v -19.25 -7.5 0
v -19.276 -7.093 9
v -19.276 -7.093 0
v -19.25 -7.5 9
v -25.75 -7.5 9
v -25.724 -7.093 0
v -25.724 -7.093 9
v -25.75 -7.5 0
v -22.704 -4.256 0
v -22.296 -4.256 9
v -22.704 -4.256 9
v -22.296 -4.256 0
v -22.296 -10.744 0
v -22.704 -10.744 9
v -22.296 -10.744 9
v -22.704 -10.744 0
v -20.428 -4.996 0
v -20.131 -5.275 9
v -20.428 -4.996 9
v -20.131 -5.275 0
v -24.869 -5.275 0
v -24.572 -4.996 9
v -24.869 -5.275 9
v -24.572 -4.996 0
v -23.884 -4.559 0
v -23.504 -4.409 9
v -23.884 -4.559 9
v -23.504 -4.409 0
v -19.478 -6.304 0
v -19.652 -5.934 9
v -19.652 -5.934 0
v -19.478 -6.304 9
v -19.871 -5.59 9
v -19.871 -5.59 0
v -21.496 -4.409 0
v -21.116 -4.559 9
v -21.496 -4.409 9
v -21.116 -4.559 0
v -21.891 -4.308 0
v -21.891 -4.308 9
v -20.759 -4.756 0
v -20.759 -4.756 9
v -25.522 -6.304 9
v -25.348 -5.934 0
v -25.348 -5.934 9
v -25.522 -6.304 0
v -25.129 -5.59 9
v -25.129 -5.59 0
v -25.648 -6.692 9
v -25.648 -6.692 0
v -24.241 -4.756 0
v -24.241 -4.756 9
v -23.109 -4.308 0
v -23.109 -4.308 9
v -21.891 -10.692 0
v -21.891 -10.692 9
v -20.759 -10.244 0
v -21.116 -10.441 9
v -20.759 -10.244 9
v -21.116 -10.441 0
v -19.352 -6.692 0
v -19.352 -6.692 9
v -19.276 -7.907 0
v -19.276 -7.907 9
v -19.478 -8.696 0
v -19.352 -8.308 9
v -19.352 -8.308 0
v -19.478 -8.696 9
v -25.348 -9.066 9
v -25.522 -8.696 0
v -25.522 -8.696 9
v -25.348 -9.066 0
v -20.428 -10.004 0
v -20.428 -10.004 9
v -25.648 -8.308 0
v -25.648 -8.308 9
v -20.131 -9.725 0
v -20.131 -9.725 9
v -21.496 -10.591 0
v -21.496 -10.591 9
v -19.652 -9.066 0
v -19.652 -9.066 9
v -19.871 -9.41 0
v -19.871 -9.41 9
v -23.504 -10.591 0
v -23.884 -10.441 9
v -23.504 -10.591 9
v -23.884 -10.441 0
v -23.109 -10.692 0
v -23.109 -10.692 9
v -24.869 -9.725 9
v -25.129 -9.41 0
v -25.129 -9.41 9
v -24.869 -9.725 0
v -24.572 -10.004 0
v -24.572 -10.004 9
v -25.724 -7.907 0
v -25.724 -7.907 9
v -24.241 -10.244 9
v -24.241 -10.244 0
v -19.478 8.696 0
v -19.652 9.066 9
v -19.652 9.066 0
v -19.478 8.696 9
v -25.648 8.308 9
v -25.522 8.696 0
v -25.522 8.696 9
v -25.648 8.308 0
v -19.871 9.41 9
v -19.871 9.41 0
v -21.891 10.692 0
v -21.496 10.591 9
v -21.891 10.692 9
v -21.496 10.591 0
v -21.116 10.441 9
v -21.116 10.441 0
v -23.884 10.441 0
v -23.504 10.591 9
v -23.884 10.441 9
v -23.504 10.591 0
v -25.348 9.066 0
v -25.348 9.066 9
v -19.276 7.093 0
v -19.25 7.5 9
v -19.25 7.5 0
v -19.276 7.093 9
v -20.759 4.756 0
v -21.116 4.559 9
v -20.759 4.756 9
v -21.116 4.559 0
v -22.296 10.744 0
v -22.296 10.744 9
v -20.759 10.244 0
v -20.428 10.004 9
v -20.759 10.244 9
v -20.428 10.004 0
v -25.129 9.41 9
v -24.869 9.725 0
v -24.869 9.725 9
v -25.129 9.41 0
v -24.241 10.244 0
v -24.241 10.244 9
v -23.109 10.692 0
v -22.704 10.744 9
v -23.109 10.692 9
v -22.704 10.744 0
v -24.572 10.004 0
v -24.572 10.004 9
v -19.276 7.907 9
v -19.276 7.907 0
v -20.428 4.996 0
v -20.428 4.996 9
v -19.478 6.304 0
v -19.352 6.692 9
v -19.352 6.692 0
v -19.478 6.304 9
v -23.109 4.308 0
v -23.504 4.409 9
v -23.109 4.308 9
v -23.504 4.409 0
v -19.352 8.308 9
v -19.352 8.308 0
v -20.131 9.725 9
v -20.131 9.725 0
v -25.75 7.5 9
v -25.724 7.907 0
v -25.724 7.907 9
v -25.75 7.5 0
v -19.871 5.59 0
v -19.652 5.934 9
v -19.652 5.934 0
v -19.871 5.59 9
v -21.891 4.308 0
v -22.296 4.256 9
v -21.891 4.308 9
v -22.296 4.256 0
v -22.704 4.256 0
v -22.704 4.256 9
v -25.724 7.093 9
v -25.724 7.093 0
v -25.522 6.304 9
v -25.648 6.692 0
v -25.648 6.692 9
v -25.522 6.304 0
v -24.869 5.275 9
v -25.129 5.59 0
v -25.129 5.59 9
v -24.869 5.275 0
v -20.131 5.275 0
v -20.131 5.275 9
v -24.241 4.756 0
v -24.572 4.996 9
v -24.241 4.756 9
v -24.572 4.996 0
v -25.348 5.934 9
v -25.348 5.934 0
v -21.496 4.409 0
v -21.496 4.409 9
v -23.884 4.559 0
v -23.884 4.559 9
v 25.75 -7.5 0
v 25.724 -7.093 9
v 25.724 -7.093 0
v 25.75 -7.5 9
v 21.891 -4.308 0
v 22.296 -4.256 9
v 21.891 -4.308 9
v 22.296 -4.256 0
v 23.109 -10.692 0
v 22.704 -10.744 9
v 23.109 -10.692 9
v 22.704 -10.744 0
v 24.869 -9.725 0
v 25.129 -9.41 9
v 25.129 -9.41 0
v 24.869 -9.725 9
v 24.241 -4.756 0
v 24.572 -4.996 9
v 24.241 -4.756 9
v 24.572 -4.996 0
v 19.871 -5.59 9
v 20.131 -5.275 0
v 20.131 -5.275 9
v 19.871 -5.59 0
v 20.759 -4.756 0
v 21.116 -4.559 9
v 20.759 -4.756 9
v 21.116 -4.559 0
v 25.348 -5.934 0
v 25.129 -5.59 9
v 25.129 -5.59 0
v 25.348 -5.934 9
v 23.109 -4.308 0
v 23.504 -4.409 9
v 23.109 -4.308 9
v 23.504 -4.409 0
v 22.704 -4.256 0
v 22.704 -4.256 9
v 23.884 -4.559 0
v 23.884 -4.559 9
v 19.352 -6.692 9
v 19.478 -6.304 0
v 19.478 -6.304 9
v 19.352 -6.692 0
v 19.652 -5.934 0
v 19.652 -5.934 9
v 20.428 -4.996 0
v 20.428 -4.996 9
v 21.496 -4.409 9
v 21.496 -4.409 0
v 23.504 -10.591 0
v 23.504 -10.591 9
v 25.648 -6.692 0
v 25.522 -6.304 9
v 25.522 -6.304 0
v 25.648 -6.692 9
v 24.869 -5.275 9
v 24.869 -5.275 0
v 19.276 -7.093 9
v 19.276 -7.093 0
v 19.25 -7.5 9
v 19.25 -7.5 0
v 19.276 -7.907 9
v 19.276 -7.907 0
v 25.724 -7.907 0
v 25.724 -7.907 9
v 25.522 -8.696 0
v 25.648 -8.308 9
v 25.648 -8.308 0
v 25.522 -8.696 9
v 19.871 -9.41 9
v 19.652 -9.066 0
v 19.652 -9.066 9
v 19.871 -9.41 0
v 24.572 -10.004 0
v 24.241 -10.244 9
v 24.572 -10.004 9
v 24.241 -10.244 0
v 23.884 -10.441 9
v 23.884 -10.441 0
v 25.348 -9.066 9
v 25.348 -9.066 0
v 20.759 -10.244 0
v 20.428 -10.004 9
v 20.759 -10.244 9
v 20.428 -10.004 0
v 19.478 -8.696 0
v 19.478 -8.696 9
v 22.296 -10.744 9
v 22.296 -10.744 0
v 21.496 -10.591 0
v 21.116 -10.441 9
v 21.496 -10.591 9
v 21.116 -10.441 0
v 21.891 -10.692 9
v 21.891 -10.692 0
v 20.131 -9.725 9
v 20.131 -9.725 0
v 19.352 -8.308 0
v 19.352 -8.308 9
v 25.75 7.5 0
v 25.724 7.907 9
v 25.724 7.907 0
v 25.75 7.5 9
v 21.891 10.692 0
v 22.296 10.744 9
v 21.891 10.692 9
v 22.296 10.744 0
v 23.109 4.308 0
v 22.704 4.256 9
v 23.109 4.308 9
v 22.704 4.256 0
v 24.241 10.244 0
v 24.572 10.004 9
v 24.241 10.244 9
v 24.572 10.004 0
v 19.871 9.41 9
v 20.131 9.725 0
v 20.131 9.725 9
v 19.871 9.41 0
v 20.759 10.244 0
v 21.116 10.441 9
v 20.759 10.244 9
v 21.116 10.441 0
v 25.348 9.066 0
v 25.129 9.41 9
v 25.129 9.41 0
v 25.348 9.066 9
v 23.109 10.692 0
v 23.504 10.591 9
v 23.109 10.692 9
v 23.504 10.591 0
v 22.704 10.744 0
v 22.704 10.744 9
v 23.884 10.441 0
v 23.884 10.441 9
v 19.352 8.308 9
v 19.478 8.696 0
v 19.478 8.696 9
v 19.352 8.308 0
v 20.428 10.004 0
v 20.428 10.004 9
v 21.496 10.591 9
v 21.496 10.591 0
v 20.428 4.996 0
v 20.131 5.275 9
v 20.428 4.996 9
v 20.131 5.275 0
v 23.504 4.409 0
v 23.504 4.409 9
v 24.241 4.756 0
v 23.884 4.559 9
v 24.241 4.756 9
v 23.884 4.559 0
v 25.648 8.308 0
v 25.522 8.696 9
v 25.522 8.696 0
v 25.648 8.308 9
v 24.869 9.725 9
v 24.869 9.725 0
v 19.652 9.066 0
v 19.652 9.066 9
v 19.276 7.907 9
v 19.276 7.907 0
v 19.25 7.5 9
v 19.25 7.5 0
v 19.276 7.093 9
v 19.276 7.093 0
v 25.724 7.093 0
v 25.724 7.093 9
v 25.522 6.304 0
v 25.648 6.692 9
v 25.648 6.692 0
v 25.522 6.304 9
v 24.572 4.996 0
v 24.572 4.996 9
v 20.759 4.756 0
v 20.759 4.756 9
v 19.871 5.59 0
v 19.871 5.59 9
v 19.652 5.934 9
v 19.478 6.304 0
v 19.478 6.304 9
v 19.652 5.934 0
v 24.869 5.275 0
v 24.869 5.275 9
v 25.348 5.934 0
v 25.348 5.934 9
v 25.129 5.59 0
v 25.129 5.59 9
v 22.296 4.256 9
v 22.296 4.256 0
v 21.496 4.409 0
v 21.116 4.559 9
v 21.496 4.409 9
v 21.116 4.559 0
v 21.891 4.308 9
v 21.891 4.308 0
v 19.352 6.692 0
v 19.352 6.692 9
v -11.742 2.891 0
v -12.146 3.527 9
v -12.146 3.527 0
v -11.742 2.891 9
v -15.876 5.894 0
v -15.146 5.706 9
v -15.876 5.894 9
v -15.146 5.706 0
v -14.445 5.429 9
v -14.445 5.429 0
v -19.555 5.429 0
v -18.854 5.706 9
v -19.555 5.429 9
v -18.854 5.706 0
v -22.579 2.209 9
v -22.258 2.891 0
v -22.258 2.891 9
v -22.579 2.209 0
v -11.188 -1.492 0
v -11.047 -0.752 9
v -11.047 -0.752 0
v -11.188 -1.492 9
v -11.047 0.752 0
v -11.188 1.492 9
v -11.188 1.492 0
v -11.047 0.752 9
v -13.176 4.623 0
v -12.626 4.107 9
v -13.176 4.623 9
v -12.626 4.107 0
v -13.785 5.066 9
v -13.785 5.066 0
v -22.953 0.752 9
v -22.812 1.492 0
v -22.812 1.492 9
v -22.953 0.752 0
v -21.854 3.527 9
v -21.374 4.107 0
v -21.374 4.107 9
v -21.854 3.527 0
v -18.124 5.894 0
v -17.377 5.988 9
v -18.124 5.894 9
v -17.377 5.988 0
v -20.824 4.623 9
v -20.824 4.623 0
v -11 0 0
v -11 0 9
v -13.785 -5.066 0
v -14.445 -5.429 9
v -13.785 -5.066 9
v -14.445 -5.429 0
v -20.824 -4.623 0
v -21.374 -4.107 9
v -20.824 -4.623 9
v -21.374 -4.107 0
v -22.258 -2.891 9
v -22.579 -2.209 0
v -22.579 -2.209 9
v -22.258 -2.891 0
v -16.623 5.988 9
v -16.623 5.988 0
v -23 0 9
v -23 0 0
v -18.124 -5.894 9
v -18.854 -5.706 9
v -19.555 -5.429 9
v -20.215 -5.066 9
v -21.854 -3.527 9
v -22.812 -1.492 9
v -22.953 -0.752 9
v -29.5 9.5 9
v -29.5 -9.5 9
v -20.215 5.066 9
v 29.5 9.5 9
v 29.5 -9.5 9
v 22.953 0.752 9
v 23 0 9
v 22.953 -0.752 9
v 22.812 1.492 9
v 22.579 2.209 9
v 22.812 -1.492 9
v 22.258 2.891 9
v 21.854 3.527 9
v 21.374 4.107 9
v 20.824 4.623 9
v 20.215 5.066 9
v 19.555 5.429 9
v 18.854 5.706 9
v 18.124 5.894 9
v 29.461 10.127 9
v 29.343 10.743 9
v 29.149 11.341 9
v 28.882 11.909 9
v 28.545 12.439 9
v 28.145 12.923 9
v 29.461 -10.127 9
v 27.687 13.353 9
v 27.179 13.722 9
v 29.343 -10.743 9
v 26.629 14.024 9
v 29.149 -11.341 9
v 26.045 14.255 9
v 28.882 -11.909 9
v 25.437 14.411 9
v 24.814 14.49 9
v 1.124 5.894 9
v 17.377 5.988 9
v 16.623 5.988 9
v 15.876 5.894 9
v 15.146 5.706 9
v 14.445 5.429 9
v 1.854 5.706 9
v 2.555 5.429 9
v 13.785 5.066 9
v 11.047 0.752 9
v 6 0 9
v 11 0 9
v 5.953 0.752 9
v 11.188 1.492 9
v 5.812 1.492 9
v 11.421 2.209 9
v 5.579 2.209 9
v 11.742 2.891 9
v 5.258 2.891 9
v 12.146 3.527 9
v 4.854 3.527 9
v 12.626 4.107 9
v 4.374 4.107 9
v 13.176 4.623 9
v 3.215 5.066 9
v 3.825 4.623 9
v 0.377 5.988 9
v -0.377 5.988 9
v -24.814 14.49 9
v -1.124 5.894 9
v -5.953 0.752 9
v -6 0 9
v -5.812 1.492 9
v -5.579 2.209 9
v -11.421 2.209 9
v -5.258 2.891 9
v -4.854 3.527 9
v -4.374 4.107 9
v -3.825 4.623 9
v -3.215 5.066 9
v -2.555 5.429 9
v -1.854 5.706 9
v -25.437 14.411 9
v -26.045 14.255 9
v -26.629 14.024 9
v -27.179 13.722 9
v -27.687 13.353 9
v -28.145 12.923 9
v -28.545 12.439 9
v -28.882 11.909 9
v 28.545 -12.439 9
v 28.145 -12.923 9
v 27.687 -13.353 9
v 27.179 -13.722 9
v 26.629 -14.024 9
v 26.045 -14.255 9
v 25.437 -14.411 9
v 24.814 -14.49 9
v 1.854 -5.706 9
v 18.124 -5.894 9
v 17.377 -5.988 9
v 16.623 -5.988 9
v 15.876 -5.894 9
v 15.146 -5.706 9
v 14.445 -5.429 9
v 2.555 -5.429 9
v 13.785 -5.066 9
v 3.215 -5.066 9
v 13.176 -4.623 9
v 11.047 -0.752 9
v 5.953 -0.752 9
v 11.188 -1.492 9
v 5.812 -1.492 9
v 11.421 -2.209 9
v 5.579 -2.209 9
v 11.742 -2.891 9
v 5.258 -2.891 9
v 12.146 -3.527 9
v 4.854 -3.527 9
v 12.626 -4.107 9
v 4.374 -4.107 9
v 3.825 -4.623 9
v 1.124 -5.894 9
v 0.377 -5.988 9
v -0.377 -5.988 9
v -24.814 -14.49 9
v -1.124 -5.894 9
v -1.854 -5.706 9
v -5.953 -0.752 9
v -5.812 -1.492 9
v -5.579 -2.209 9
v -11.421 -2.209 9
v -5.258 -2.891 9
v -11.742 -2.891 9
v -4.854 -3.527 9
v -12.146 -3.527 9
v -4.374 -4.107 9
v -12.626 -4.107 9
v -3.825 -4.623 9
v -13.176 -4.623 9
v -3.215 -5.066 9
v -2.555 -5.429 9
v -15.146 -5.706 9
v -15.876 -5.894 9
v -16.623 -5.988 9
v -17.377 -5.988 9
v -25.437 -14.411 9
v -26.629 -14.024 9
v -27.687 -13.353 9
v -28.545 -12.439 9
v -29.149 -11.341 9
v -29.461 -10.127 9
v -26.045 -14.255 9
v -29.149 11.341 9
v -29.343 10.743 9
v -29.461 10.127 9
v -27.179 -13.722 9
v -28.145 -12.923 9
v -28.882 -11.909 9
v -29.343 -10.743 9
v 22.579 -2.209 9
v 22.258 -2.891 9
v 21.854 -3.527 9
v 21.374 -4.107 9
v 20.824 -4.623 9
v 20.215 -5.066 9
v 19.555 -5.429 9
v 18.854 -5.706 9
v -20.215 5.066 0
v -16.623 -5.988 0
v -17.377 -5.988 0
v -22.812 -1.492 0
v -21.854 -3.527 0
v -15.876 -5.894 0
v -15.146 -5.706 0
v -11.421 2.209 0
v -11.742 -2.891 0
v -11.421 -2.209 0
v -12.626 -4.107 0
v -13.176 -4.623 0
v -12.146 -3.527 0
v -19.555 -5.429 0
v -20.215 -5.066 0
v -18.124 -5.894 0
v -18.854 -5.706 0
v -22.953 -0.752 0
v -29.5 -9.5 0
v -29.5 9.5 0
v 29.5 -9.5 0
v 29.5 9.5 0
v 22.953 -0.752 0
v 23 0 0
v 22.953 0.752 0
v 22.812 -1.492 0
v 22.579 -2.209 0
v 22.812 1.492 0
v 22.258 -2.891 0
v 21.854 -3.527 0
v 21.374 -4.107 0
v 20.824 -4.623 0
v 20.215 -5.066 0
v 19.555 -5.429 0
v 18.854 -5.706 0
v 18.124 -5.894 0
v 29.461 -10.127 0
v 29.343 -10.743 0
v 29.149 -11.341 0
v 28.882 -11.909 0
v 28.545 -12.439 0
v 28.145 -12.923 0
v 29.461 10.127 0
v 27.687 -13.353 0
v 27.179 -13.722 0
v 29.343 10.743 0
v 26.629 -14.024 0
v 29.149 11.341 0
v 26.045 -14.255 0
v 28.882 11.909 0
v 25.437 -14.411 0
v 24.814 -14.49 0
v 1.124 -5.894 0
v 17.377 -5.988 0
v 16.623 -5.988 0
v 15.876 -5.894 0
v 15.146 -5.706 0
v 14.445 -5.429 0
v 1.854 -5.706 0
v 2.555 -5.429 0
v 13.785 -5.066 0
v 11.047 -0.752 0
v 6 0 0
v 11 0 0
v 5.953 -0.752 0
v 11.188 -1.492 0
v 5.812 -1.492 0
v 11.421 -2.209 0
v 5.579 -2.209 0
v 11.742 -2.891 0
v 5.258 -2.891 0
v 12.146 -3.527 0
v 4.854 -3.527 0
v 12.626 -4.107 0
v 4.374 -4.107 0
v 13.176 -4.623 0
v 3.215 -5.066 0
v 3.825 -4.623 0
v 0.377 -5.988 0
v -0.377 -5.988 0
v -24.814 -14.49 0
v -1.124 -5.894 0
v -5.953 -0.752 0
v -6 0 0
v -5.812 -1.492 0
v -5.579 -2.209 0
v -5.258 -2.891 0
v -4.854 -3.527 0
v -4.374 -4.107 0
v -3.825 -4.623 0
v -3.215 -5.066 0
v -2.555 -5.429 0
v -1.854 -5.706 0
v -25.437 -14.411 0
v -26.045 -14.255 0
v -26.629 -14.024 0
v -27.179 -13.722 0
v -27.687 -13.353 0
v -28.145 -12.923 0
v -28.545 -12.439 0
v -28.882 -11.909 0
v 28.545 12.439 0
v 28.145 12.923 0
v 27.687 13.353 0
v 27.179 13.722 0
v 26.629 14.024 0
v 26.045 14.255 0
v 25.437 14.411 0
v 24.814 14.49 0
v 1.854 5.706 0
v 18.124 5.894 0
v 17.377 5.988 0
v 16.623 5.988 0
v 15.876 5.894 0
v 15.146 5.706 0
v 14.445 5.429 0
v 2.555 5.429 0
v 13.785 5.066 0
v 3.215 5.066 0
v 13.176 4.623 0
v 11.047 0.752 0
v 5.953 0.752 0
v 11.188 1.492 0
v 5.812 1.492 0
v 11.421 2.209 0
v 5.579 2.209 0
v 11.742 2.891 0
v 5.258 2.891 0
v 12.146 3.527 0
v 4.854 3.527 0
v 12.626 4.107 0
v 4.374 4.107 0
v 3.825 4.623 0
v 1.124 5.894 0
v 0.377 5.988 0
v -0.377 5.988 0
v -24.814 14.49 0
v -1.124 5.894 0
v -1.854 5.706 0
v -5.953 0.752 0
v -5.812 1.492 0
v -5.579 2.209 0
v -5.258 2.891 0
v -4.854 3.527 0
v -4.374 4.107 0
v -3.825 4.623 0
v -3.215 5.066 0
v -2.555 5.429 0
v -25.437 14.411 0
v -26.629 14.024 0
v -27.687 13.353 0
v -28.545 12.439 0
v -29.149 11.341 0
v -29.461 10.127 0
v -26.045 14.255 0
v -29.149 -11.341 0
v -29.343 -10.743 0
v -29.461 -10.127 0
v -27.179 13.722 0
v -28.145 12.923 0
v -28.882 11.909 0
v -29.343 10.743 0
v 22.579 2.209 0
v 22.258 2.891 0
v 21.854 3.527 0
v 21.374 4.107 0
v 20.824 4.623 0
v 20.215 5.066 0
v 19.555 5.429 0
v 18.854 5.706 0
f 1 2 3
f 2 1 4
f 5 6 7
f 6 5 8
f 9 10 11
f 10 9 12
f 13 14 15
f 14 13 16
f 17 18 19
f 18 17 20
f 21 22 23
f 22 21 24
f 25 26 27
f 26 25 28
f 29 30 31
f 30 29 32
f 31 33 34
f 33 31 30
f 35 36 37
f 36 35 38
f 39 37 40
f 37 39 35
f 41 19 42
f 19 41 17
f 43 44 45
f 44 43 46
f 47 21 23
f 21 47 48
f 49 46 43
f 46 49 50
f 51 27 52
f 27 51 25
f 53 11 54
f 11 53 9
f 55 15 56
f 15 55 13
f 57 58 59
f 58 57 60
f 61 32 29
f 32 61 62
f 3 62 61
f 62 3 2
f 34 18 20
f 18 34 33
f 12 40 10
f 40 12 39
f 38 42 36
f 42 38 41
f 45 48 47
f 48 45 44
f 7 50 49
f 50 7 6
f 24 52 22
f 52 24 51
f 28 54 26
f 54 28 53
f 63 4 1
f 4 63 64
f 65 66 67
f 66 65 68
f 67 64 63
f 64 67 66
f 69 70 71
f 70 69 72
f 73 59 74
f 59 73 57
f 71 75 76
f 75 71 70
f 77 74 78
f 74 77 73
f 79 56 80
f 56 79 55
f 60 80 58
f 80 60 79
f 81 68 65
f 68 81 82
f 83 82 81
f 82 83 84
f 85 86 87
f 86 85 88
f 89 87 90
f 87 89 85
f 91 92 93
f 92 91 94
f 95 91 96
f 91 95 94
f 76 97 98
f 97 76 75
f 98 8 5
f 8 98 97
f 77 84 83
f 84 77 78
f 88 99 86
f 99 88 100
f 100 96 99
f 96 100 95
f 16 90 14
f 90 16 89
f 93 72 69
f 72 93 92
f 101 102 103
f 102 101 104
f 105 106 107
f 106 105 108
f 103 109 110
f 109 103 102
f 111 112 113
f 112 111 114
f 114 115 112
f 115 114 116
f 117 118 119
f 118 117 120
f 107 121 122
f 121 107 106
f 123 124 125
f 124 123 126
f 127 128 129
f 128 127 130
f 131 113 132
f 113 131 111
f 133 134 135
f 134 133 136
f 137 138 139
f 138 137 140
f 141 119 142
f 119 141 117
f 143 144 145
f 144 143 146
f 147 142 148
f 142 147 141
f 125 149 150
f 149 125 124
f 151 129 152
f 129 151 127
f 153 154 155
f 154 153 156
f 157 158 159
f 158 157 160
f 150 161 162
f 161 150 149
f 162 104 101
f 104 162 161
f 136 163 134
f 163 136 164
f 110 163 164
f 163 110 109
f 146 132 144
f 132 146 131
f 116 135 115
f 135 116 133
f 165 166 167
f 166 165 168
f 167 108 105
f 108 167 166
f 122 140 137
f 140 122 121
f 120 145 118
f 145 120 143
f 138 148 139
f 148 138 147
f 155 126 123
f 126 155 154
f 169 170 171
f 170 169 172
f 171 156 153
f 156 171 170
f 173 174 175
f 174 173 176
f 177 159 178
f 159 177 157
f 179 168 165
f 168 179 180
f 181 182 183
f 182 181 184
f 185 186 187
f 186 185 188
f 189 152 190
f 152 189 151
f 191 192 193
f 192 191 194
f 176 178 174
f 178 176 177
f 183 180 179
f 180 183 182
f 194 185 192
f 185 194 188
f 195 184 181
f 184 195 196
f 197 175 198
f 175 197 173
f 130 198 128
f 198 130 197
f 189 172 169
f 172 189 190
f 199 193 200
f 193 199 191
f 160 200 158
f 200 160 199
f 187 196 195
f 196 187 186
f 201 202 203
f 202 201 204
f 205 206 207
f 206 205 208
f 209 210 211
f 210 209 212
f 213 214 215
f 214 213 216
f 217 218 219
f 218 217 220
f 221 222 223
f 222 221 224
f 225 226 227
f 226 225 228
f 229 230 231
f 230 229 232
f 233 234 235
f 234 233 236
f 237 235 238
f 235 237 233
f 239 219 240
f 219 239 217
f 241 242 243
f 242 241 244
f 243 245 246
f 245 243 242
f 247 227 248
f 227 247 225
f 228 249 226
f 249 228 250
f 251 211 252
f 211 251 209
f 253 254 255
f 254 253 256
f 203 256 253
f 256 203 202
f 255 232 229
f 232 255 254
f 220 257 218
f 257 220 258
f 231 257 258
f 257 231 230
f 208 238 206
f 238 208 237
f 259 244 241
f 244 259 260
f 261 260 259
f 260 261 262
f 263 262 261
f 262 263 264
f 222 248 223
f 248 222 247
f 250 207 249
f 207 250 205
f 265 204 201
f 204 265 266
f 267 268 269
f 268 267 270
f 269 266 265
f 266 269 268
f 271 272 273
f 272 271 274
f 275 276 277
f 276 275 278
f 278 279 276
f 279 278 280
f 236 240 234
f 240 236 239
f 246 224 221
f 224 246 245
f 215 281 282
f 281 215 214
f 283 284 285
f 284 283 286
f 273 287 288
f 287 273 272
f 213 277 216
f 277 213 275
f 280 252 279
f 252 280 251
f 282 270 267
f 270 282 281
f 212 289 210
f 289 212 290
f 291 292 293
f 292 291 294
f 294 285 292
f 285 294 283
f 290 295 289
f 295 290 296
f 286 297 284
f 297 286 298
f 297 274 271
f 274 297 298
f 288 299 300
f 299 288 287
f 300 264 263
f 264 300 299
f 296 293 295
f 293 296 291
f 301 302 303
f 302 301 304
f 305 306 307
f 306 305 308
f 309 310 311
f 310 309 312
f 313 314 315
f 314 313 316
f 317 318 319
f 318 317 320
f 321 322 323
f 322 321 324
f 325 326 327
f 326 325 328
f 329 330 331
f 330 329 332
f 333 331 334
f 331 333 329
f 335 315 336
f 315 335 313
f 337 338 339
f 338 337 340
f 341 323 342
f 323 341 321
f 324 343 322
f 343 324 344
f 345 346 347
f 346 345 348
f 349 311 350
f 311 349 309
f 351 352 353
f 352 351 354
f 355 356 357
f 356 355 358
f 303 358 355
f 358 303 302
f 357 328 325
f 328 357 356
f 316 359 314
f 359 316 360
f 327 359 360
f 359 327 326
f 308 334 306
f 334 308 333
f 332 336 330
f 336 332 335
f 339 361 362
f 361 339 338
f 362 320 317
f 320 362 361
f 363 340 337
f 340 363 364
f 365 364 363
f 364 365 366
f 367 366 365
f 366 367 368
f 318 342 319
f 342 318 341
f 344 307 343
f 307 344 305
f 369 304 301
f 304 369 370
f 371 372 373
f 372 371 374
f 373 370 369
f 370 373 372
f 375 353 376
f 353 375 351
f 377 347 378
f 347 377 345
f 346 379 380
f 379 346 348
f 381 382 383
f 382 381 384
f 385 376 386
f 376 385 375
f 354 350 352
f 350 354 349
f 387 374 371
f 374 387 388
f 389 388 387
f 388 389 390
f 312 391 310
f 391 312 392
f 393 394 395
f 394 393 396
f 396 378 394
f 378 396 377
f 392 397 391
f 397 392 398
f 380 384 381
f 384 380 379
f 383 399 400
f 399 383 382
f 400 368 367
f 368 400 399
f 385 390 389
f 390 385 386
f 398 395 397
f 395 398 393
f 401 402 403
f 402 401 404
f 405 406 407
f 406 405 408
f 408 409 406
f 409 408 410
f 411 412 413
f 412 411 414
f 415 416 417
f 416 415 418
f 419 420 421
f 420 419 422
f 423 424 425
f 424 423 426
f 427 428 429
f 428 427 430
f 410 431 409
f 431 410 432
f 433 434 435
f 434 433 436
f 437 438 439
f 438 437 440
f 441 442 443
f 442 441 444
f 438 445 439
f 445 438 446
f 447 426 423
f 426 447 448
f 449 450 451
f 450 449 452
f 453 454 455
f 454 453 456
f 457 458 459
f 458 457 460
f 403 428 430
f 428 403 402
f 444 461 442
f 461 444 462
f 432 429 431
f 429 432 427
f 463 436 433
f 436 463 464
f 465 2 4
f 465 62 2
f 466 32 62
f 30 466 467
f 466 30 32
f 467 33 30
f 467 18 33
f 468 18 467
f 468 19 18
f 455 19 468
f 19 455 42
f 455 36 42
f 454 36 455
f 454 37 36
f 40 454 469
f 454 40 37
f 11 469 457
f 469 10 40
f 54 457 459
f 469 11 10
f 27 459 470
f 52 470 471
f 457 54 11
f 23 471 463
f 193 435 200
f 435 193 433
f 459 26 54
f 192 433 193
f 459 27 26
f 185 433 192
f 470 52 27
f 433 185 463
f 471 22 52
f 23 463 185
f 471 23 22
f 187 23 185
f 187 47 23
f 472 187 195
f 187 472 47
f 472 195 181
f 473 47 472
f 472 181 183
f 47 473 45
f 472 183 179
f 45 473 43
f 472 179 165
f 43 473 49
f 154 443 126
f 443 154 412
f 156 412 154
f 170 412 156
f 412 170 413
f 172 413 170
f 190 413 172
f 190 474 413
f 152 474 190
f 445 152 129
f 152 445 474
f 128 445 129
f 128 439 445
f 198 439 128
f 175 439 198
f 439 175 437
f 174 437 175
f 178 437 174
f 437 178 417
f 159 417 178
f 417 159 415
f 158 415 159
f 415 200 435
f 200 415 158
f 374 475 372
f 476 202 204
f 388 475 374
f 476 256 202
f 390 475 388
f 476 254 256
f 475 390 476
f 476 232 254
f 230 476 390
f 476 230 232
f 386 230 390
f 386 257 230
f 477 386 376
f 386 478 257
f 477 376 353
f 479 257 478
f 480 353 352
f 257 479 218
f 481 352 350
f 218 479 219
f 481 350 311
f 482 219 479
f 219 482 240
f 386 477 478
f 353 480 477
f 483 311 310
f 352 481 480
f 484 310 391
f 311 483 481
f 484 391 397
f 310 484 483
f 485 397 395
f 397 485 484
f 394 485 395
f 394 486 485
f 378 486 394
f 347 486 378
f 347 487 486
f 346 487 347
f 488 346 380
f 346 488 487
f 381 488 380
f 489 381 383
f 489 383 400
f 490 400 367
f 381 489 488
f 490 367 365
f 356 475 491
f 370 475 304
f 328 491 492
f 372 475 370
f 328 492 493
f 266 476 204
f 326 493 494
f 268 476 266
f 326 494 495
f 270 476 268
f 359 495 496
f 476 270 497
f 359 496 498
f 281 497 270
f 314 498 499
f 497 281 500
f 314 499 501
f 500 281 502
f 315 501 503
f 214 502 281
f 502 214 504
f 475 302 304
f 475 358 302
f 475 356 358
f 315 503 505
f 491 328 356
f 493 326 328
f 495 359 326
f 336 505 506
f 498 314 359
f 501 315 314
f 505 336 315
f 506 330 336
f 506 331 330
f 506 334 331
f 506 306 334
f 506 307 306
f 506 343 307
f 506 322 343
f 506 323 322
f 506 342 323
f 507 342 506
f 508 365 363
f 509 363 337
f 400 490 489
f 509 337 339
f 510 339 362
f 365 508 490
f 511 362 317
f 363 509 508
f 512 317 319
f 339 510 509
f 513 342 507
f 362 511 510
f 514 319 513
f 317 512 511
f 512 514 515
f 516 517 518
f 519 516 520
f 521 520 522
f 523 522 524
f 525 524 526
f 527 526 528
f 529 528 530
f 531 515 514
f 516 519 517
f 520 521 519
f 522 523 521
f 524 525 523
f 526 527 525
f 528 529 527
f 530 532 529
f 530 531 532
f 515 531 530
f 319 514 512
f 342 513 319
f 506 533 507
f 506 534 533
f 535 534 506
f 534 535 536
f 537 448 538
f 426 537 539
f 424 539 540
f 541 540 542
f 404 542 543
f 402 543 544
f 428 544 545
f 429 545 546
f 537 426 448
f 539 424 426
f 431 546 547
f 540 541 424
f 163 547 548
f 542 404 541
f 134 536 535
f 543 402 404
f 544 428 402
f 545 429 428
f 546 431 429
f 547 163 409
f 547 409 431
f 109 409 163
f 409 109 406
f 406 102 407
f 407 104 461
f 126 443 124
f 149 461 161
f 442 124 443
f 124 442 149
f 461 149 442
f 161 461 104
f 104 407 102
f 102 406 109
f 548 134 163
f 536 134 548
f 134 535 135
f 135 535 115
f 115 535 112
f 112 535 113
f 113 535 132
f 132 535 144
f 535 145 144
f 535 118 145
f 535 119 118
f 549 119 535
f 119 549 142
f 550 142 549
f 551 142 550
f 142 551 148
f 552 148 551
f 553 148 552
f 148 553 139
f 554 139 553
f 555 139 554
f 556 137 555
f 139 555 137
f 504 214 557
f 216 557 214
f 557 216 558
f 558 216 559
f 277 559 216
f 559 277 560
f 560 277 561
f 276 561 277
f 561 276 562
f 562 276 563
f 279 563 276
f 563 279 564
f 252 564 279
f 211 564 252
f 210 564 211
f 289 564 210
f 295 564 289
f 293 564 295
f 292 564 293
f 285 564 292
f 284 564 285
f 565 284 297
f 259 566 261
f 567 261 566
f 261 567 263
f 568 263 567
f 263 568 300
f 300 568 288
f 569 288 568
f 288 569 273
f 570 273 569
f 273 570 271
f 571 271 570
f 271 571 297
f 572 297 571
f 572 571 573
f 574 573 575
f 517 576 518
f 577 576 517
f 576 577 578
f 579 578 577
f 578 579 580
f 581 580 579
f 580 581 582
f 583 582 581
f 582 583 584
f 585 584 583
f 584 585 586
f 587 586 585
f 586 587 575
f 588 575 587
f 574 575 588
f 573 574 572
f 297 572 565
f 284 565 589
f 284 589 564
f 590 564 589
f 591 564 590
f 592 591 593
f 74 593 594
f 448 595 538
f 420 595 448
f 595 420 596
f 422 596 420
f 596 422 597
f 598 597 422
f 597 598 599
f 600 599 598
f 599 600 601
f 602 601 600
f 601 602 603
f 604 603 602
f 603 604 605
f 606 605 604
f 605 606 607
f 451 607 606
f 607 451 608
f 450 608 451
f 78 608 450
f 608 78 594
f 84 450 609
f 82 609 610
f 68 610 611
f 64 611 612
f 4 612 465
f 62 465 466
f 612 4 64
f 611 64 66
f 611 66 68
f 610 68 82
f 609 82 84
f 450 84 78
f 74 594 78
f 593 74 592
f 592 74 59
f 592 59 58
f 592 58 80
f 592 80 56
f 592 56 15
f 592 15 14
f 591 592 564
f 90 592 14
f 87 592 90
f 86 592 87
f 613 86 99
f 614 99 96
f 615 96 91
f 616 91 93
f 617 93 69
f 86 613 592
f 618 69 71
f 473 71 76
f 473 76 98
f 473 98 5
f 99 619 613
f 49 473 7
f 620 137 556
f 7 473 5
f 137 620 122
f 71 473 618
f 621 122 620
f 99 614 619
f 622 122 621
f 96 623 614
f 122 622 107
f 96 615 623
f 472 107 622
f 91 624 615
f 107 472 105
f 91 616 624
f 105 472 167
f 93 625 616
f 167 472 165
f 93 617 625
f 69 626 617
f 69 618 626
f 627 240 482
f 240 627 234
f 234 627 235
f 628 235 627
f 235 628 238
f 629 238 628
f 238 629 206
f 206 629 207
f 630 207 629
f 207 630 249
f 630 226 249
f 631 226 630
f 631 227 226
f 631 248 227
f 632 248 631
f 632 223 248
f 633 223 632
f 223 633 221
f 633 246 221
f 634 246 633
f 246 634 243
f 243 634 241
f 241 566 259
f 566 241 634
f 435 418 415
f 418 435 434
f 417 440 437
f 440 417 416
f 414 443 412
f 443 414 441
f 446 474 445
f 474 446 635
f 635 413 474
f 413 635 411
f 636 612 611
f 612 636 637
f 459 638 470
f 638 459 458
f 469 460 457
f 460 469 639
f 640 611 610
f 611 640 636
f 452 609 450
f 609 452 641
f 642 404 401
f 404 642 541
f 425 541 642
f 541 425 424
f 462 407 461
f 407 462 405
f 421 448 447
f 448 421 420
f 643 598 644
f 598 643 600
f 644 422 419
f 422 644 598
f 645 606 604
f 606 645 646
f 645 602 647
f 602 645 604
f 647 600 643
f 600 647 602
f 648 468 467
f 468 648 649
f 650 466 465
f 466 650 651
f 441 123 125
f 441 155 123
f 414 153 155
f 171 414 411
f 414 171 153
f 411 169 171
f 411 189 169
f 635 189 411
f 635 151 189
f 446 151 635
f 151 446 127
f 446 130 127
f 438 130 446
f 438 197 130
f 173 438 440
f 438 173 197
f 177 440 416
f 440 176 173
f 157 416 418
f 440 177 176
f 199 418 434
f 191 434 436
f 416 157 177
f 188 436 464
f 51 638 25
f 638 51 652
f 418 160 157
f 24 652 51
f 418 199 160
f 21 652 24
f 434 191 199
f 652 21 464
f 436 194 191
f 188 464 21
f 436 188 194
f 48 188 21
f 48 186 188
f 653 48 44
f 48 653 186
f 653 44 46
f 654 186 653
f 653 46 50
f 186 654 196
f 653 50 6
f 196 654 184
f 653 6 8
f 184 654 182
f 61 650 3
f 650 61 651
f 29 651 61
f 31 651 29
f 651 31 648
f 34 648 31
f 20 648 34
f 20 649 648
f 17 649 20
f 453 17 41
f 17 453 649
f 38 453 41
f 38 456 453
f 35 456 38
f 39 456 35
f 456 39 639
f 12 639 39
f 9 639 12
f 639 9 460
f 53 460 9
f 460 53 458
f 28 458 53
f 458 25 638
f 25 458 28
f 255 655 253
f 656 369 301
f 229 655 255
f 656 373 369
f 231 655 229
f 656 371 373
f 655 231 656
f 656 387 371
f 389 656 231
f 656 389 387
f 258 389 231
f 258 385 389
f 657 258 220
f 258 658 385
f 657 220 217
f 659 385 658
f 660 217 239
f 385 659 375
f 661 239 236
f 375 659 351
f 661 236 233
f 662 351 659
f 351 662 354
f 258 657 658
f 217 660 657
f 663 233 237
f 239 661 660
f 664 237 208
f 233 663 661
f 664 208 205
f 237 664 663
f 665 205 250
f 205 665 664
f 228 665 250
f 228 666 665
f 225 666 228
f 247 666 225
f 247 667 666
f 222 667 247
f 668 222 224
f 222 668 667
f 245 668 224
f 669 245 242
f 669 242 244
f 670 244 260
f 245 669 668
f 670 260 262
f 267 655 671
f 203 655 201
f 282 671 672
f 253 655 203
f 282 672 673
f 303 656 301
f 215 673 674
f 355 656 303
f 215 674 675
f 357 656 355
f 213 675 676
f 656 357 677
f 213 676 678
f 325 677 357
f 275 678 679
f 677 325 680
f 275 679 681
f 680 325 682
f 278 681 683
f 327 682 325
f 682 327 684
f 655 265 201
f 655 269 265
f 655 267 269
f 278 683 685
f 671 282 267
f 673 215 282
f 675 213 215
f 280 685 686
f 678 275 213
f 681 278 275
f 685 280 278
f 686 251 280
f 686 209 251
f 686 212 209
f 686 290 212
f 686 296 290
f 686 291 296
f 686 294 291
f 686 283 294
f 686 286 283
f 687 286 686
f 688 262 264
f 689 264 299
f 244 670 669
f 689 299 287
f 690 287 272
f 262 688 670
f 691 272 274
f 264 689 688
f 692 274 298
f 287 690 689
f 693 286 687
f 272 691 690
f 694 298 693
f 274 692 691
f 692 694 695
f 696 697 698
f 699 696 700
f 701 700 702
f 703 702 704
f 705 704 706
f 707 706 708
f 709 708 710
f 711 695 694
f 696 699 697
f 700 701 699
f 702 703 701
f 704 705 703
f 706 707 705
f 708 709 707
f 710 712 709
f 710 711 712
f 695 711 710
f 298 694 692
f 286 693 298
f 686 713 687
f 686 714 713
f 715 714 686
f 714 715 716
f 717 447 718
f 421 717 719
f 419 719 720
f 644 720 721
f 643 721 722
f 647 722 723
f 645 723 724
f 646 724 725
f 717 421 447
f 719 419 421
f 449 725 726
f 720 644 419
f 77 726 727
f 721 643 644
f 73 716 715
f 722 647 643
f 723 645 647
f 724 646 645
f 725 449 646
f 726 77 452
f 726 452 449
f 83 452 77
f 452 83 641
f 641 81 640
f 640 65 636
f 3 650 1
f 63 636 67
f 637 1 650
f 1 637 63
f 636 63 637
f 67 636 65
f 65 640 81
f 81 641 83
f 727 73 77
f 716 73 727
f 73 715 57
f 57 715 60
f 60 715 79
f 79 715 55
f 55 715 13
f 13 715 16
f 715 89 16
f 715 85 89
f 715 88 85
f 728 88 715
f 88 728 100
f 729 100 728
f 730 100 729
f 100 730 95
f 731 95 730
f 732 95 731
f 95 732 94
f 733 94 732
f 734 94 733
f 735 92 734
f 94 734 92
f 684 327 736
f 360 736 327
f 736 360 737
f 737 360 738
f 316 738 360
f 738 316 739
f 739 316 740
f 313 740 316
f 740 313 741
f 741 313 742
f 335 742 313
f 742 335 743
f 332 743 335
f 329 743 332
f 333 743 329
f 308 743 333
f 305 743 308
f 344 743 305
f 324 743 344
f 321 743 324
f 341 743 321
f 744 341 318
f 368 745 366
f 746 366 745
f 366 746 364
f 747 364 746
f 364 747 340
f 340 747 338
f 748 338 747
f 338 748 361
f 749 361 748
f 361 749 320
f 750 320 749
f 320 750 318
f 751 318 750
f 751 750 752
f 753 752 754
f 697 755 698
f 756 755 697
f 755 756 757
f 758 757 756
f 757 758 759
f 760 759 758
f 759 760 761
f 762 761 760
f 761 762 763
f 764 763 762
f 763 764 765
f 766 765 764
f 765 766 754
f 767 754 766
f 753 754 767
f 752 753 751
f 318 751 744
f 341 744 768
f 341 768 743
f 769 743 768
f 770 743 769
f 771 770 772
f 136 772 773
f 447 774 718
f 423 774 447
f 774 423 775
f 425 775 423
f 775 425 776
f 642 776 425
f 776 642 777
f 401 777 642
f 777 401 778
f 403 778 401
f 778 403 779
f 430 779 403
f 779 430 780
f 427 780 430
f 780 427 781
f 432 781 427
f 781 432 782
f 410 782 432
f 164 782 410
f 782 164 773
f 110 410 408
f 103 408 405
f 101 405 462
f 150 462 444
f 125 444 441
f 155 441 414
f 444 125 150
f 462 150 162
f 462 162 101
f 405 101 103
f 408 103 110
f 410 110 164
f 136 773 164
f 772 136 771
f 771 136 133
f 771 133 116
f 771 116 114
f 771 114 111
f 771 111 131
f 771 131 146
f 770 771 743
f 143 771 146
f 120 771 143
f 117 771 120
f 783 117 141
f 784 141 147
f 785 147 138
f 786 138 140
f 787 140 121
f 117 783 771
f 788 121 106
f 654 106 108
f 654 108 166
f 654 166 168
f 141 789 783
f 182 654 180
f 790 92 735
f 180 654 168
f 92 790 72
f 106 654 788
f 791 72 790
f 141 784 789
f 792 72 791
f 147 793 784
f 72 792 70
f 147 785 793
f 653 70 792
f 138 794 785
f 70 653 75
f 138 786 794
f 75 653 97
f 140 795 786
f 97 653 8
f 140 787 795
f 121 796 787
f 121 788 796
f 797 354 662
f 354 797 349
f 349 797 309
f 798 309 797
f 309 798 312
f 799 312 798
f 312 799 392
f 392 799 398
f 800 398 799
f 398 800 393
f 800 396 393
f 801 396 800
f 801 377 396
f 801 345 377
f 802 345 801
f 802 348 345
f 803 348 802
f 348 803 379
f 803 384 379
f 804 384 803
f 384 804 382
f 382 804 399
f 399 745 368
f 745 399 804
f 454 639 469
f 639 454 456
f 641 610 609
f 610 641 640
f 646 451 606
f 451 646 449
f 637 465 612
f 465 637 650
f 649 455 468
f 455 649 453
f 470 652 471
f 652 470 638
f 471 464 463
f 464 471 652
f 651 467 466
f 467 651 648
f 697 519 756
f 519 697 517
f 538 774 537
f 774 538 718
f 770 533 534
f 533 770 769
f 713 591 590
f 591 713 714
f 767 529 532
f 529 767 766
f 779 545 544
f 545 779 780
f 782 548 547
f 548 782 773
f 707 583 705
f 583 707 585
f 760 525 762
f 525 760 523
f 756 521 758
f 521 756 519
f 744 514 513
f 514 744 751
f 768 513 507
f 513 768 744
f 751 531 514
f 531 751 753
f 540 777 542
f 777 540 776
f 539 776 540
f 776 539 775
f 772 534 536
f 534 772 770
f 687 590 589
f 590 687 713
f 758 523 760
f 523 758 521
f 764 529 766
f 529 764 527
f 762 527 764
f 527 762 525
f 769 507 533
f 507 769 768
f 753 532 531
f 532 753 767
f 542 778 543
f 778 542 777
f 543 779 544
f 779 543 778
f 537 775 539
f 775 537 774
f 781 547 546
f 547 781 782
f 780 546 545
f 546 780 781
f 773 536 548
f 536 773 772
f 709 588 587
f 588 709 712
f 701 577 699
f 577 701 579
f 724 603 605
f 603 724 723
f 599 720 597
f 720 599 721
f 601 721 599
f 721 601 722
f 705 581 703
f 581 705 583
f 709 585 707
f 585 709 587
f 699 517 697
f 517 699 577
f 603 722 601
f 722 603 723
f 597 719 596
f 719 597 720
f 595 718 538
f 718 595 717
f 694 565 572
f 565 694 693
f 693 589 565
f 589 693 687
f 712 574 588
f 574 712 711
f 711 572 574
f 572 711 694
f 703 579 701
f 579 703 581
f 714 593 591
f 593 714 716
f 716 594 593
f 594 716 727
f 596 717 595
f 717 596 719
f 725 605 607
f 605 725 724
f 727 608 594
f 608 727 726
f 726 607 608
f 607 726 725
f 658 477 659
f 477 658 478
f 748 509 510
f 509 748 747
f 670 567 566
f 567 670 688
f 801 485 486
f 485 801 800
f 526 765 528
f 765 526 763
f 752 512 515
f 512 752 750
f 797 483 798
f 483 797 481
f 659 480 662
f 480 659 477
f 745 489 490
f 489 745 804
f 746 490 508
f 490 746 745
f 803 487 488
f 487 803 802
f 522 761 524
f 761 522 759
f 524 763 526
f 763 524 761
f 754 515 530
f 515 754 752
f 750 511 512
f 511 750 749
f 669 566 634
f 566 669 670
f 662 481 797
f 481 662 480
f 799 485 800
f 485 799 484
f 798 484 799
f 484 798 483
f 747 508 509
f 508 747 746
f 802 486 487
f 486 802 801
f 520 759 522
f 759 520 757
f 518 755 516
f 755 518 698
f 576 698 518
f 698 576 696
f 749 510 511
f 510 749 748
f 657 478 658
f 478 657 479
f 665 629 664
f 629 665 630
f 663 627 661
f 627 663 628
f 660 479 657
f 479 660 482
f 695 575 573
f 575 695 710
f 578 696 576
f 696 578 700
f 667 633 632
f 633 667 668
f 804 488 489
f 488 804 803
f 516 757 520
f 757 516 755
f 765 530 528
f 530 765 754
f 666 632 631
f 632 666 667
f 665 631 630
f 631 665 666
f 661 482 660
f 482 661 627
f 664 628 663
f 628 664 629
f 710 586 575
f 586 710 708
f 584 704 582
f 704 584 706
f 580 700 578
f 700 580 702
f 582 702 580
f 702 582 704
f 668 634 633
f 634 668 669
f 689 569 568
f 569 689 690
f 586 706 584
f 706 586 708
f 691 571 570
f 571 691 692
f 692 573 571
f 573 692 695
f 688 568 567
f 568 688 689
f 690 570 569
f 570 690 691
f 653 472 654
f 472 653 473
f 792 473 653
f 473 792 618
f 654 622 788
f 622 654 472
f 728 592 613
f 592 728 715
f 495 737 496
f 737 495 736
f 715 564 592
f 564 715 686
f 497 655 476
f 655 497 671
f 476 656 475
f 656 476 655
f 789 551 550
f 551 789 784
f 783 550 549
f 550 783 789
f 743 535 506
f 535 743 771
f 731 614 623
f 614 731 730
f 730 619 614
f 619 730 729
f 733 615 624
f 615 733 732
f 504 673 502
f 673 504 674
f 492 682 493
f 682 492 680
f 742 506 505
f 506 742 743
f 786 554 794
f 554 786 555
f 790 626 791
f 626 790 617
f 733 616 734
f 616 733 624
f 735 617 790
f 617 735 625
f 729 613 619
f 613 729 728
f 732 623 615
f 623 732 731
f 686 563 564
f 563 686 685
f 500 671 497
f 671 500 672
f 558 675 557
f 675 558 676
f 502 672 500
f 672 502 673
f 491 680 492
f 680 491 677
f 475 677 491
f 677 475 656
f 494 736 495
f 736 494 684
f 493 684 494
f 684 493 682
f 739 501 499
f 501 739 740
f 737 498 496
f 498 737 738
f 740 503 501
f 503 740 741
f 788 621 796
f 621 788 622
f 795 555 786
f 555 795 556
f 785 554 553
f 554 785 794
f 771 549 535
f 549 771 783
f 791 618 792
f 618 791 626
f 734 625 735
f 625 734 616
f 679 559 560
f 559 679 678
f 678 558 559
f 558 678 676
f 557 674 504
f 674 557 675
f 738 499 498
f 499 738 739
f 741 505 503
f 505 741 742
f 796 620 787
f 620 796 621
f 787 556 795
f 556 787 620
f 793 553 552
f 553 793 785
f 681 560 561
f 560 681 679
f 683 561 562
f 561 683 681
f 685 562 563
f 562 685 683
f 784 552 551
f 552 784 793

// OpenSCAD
$fn = 50;


difference() {
	union() {
		hull() {
			translate(v = [-24.5000000000, 9.5000000000, 0]) {
				cylinder(h = 9, r = 5);
			}
			translate(v = [24.5000000000, 9.5000000000, 0]) {
				cylinder(h = 9, r = 5);
			}
			translate(v = [-24.5000000000, -9.5000000000, 0]) {
				cylinder(h = 9, r = 5);
			}
			translate(v = [24.5000000000, -9.5000000000, 0]) {
				cylinder(h = 9, r = 5);
			}
		}
	}
	union() {
		#translate(v = [-22.5000000000, -7.5000000000, -100.0000000000]) {
			cylinder(h = 200, r = 3.2500000000);
		}
		#translate(v = [-22.5000000000, 7.5000000000, -100.0000000000]) {
			cylinder(h = 200, r = 3.2500000000);
		}
		#translate(v = [22.5000000000, -7.5000000000, -100.0000000000]) {
			cylinder(h = 200, r = 3.2500000000);
		}
		#translate(v = [22.5000000000, 7.5000000000, -100.0000000000]) {
			cylinder(h = 200, r = 3.2500000000);
		}
		#translate(v = [-17.0000000000, 0, 0]) {
			cylinder(h = 9, r = 6.0000000000);
		}
		#cylinder(h = 9, r = 6.0000000000);
		#translate(v = [17.0000000000, 0, 0]) {
			cylinder(h = 9, r = 6.0000000000);
		}
	}
}
